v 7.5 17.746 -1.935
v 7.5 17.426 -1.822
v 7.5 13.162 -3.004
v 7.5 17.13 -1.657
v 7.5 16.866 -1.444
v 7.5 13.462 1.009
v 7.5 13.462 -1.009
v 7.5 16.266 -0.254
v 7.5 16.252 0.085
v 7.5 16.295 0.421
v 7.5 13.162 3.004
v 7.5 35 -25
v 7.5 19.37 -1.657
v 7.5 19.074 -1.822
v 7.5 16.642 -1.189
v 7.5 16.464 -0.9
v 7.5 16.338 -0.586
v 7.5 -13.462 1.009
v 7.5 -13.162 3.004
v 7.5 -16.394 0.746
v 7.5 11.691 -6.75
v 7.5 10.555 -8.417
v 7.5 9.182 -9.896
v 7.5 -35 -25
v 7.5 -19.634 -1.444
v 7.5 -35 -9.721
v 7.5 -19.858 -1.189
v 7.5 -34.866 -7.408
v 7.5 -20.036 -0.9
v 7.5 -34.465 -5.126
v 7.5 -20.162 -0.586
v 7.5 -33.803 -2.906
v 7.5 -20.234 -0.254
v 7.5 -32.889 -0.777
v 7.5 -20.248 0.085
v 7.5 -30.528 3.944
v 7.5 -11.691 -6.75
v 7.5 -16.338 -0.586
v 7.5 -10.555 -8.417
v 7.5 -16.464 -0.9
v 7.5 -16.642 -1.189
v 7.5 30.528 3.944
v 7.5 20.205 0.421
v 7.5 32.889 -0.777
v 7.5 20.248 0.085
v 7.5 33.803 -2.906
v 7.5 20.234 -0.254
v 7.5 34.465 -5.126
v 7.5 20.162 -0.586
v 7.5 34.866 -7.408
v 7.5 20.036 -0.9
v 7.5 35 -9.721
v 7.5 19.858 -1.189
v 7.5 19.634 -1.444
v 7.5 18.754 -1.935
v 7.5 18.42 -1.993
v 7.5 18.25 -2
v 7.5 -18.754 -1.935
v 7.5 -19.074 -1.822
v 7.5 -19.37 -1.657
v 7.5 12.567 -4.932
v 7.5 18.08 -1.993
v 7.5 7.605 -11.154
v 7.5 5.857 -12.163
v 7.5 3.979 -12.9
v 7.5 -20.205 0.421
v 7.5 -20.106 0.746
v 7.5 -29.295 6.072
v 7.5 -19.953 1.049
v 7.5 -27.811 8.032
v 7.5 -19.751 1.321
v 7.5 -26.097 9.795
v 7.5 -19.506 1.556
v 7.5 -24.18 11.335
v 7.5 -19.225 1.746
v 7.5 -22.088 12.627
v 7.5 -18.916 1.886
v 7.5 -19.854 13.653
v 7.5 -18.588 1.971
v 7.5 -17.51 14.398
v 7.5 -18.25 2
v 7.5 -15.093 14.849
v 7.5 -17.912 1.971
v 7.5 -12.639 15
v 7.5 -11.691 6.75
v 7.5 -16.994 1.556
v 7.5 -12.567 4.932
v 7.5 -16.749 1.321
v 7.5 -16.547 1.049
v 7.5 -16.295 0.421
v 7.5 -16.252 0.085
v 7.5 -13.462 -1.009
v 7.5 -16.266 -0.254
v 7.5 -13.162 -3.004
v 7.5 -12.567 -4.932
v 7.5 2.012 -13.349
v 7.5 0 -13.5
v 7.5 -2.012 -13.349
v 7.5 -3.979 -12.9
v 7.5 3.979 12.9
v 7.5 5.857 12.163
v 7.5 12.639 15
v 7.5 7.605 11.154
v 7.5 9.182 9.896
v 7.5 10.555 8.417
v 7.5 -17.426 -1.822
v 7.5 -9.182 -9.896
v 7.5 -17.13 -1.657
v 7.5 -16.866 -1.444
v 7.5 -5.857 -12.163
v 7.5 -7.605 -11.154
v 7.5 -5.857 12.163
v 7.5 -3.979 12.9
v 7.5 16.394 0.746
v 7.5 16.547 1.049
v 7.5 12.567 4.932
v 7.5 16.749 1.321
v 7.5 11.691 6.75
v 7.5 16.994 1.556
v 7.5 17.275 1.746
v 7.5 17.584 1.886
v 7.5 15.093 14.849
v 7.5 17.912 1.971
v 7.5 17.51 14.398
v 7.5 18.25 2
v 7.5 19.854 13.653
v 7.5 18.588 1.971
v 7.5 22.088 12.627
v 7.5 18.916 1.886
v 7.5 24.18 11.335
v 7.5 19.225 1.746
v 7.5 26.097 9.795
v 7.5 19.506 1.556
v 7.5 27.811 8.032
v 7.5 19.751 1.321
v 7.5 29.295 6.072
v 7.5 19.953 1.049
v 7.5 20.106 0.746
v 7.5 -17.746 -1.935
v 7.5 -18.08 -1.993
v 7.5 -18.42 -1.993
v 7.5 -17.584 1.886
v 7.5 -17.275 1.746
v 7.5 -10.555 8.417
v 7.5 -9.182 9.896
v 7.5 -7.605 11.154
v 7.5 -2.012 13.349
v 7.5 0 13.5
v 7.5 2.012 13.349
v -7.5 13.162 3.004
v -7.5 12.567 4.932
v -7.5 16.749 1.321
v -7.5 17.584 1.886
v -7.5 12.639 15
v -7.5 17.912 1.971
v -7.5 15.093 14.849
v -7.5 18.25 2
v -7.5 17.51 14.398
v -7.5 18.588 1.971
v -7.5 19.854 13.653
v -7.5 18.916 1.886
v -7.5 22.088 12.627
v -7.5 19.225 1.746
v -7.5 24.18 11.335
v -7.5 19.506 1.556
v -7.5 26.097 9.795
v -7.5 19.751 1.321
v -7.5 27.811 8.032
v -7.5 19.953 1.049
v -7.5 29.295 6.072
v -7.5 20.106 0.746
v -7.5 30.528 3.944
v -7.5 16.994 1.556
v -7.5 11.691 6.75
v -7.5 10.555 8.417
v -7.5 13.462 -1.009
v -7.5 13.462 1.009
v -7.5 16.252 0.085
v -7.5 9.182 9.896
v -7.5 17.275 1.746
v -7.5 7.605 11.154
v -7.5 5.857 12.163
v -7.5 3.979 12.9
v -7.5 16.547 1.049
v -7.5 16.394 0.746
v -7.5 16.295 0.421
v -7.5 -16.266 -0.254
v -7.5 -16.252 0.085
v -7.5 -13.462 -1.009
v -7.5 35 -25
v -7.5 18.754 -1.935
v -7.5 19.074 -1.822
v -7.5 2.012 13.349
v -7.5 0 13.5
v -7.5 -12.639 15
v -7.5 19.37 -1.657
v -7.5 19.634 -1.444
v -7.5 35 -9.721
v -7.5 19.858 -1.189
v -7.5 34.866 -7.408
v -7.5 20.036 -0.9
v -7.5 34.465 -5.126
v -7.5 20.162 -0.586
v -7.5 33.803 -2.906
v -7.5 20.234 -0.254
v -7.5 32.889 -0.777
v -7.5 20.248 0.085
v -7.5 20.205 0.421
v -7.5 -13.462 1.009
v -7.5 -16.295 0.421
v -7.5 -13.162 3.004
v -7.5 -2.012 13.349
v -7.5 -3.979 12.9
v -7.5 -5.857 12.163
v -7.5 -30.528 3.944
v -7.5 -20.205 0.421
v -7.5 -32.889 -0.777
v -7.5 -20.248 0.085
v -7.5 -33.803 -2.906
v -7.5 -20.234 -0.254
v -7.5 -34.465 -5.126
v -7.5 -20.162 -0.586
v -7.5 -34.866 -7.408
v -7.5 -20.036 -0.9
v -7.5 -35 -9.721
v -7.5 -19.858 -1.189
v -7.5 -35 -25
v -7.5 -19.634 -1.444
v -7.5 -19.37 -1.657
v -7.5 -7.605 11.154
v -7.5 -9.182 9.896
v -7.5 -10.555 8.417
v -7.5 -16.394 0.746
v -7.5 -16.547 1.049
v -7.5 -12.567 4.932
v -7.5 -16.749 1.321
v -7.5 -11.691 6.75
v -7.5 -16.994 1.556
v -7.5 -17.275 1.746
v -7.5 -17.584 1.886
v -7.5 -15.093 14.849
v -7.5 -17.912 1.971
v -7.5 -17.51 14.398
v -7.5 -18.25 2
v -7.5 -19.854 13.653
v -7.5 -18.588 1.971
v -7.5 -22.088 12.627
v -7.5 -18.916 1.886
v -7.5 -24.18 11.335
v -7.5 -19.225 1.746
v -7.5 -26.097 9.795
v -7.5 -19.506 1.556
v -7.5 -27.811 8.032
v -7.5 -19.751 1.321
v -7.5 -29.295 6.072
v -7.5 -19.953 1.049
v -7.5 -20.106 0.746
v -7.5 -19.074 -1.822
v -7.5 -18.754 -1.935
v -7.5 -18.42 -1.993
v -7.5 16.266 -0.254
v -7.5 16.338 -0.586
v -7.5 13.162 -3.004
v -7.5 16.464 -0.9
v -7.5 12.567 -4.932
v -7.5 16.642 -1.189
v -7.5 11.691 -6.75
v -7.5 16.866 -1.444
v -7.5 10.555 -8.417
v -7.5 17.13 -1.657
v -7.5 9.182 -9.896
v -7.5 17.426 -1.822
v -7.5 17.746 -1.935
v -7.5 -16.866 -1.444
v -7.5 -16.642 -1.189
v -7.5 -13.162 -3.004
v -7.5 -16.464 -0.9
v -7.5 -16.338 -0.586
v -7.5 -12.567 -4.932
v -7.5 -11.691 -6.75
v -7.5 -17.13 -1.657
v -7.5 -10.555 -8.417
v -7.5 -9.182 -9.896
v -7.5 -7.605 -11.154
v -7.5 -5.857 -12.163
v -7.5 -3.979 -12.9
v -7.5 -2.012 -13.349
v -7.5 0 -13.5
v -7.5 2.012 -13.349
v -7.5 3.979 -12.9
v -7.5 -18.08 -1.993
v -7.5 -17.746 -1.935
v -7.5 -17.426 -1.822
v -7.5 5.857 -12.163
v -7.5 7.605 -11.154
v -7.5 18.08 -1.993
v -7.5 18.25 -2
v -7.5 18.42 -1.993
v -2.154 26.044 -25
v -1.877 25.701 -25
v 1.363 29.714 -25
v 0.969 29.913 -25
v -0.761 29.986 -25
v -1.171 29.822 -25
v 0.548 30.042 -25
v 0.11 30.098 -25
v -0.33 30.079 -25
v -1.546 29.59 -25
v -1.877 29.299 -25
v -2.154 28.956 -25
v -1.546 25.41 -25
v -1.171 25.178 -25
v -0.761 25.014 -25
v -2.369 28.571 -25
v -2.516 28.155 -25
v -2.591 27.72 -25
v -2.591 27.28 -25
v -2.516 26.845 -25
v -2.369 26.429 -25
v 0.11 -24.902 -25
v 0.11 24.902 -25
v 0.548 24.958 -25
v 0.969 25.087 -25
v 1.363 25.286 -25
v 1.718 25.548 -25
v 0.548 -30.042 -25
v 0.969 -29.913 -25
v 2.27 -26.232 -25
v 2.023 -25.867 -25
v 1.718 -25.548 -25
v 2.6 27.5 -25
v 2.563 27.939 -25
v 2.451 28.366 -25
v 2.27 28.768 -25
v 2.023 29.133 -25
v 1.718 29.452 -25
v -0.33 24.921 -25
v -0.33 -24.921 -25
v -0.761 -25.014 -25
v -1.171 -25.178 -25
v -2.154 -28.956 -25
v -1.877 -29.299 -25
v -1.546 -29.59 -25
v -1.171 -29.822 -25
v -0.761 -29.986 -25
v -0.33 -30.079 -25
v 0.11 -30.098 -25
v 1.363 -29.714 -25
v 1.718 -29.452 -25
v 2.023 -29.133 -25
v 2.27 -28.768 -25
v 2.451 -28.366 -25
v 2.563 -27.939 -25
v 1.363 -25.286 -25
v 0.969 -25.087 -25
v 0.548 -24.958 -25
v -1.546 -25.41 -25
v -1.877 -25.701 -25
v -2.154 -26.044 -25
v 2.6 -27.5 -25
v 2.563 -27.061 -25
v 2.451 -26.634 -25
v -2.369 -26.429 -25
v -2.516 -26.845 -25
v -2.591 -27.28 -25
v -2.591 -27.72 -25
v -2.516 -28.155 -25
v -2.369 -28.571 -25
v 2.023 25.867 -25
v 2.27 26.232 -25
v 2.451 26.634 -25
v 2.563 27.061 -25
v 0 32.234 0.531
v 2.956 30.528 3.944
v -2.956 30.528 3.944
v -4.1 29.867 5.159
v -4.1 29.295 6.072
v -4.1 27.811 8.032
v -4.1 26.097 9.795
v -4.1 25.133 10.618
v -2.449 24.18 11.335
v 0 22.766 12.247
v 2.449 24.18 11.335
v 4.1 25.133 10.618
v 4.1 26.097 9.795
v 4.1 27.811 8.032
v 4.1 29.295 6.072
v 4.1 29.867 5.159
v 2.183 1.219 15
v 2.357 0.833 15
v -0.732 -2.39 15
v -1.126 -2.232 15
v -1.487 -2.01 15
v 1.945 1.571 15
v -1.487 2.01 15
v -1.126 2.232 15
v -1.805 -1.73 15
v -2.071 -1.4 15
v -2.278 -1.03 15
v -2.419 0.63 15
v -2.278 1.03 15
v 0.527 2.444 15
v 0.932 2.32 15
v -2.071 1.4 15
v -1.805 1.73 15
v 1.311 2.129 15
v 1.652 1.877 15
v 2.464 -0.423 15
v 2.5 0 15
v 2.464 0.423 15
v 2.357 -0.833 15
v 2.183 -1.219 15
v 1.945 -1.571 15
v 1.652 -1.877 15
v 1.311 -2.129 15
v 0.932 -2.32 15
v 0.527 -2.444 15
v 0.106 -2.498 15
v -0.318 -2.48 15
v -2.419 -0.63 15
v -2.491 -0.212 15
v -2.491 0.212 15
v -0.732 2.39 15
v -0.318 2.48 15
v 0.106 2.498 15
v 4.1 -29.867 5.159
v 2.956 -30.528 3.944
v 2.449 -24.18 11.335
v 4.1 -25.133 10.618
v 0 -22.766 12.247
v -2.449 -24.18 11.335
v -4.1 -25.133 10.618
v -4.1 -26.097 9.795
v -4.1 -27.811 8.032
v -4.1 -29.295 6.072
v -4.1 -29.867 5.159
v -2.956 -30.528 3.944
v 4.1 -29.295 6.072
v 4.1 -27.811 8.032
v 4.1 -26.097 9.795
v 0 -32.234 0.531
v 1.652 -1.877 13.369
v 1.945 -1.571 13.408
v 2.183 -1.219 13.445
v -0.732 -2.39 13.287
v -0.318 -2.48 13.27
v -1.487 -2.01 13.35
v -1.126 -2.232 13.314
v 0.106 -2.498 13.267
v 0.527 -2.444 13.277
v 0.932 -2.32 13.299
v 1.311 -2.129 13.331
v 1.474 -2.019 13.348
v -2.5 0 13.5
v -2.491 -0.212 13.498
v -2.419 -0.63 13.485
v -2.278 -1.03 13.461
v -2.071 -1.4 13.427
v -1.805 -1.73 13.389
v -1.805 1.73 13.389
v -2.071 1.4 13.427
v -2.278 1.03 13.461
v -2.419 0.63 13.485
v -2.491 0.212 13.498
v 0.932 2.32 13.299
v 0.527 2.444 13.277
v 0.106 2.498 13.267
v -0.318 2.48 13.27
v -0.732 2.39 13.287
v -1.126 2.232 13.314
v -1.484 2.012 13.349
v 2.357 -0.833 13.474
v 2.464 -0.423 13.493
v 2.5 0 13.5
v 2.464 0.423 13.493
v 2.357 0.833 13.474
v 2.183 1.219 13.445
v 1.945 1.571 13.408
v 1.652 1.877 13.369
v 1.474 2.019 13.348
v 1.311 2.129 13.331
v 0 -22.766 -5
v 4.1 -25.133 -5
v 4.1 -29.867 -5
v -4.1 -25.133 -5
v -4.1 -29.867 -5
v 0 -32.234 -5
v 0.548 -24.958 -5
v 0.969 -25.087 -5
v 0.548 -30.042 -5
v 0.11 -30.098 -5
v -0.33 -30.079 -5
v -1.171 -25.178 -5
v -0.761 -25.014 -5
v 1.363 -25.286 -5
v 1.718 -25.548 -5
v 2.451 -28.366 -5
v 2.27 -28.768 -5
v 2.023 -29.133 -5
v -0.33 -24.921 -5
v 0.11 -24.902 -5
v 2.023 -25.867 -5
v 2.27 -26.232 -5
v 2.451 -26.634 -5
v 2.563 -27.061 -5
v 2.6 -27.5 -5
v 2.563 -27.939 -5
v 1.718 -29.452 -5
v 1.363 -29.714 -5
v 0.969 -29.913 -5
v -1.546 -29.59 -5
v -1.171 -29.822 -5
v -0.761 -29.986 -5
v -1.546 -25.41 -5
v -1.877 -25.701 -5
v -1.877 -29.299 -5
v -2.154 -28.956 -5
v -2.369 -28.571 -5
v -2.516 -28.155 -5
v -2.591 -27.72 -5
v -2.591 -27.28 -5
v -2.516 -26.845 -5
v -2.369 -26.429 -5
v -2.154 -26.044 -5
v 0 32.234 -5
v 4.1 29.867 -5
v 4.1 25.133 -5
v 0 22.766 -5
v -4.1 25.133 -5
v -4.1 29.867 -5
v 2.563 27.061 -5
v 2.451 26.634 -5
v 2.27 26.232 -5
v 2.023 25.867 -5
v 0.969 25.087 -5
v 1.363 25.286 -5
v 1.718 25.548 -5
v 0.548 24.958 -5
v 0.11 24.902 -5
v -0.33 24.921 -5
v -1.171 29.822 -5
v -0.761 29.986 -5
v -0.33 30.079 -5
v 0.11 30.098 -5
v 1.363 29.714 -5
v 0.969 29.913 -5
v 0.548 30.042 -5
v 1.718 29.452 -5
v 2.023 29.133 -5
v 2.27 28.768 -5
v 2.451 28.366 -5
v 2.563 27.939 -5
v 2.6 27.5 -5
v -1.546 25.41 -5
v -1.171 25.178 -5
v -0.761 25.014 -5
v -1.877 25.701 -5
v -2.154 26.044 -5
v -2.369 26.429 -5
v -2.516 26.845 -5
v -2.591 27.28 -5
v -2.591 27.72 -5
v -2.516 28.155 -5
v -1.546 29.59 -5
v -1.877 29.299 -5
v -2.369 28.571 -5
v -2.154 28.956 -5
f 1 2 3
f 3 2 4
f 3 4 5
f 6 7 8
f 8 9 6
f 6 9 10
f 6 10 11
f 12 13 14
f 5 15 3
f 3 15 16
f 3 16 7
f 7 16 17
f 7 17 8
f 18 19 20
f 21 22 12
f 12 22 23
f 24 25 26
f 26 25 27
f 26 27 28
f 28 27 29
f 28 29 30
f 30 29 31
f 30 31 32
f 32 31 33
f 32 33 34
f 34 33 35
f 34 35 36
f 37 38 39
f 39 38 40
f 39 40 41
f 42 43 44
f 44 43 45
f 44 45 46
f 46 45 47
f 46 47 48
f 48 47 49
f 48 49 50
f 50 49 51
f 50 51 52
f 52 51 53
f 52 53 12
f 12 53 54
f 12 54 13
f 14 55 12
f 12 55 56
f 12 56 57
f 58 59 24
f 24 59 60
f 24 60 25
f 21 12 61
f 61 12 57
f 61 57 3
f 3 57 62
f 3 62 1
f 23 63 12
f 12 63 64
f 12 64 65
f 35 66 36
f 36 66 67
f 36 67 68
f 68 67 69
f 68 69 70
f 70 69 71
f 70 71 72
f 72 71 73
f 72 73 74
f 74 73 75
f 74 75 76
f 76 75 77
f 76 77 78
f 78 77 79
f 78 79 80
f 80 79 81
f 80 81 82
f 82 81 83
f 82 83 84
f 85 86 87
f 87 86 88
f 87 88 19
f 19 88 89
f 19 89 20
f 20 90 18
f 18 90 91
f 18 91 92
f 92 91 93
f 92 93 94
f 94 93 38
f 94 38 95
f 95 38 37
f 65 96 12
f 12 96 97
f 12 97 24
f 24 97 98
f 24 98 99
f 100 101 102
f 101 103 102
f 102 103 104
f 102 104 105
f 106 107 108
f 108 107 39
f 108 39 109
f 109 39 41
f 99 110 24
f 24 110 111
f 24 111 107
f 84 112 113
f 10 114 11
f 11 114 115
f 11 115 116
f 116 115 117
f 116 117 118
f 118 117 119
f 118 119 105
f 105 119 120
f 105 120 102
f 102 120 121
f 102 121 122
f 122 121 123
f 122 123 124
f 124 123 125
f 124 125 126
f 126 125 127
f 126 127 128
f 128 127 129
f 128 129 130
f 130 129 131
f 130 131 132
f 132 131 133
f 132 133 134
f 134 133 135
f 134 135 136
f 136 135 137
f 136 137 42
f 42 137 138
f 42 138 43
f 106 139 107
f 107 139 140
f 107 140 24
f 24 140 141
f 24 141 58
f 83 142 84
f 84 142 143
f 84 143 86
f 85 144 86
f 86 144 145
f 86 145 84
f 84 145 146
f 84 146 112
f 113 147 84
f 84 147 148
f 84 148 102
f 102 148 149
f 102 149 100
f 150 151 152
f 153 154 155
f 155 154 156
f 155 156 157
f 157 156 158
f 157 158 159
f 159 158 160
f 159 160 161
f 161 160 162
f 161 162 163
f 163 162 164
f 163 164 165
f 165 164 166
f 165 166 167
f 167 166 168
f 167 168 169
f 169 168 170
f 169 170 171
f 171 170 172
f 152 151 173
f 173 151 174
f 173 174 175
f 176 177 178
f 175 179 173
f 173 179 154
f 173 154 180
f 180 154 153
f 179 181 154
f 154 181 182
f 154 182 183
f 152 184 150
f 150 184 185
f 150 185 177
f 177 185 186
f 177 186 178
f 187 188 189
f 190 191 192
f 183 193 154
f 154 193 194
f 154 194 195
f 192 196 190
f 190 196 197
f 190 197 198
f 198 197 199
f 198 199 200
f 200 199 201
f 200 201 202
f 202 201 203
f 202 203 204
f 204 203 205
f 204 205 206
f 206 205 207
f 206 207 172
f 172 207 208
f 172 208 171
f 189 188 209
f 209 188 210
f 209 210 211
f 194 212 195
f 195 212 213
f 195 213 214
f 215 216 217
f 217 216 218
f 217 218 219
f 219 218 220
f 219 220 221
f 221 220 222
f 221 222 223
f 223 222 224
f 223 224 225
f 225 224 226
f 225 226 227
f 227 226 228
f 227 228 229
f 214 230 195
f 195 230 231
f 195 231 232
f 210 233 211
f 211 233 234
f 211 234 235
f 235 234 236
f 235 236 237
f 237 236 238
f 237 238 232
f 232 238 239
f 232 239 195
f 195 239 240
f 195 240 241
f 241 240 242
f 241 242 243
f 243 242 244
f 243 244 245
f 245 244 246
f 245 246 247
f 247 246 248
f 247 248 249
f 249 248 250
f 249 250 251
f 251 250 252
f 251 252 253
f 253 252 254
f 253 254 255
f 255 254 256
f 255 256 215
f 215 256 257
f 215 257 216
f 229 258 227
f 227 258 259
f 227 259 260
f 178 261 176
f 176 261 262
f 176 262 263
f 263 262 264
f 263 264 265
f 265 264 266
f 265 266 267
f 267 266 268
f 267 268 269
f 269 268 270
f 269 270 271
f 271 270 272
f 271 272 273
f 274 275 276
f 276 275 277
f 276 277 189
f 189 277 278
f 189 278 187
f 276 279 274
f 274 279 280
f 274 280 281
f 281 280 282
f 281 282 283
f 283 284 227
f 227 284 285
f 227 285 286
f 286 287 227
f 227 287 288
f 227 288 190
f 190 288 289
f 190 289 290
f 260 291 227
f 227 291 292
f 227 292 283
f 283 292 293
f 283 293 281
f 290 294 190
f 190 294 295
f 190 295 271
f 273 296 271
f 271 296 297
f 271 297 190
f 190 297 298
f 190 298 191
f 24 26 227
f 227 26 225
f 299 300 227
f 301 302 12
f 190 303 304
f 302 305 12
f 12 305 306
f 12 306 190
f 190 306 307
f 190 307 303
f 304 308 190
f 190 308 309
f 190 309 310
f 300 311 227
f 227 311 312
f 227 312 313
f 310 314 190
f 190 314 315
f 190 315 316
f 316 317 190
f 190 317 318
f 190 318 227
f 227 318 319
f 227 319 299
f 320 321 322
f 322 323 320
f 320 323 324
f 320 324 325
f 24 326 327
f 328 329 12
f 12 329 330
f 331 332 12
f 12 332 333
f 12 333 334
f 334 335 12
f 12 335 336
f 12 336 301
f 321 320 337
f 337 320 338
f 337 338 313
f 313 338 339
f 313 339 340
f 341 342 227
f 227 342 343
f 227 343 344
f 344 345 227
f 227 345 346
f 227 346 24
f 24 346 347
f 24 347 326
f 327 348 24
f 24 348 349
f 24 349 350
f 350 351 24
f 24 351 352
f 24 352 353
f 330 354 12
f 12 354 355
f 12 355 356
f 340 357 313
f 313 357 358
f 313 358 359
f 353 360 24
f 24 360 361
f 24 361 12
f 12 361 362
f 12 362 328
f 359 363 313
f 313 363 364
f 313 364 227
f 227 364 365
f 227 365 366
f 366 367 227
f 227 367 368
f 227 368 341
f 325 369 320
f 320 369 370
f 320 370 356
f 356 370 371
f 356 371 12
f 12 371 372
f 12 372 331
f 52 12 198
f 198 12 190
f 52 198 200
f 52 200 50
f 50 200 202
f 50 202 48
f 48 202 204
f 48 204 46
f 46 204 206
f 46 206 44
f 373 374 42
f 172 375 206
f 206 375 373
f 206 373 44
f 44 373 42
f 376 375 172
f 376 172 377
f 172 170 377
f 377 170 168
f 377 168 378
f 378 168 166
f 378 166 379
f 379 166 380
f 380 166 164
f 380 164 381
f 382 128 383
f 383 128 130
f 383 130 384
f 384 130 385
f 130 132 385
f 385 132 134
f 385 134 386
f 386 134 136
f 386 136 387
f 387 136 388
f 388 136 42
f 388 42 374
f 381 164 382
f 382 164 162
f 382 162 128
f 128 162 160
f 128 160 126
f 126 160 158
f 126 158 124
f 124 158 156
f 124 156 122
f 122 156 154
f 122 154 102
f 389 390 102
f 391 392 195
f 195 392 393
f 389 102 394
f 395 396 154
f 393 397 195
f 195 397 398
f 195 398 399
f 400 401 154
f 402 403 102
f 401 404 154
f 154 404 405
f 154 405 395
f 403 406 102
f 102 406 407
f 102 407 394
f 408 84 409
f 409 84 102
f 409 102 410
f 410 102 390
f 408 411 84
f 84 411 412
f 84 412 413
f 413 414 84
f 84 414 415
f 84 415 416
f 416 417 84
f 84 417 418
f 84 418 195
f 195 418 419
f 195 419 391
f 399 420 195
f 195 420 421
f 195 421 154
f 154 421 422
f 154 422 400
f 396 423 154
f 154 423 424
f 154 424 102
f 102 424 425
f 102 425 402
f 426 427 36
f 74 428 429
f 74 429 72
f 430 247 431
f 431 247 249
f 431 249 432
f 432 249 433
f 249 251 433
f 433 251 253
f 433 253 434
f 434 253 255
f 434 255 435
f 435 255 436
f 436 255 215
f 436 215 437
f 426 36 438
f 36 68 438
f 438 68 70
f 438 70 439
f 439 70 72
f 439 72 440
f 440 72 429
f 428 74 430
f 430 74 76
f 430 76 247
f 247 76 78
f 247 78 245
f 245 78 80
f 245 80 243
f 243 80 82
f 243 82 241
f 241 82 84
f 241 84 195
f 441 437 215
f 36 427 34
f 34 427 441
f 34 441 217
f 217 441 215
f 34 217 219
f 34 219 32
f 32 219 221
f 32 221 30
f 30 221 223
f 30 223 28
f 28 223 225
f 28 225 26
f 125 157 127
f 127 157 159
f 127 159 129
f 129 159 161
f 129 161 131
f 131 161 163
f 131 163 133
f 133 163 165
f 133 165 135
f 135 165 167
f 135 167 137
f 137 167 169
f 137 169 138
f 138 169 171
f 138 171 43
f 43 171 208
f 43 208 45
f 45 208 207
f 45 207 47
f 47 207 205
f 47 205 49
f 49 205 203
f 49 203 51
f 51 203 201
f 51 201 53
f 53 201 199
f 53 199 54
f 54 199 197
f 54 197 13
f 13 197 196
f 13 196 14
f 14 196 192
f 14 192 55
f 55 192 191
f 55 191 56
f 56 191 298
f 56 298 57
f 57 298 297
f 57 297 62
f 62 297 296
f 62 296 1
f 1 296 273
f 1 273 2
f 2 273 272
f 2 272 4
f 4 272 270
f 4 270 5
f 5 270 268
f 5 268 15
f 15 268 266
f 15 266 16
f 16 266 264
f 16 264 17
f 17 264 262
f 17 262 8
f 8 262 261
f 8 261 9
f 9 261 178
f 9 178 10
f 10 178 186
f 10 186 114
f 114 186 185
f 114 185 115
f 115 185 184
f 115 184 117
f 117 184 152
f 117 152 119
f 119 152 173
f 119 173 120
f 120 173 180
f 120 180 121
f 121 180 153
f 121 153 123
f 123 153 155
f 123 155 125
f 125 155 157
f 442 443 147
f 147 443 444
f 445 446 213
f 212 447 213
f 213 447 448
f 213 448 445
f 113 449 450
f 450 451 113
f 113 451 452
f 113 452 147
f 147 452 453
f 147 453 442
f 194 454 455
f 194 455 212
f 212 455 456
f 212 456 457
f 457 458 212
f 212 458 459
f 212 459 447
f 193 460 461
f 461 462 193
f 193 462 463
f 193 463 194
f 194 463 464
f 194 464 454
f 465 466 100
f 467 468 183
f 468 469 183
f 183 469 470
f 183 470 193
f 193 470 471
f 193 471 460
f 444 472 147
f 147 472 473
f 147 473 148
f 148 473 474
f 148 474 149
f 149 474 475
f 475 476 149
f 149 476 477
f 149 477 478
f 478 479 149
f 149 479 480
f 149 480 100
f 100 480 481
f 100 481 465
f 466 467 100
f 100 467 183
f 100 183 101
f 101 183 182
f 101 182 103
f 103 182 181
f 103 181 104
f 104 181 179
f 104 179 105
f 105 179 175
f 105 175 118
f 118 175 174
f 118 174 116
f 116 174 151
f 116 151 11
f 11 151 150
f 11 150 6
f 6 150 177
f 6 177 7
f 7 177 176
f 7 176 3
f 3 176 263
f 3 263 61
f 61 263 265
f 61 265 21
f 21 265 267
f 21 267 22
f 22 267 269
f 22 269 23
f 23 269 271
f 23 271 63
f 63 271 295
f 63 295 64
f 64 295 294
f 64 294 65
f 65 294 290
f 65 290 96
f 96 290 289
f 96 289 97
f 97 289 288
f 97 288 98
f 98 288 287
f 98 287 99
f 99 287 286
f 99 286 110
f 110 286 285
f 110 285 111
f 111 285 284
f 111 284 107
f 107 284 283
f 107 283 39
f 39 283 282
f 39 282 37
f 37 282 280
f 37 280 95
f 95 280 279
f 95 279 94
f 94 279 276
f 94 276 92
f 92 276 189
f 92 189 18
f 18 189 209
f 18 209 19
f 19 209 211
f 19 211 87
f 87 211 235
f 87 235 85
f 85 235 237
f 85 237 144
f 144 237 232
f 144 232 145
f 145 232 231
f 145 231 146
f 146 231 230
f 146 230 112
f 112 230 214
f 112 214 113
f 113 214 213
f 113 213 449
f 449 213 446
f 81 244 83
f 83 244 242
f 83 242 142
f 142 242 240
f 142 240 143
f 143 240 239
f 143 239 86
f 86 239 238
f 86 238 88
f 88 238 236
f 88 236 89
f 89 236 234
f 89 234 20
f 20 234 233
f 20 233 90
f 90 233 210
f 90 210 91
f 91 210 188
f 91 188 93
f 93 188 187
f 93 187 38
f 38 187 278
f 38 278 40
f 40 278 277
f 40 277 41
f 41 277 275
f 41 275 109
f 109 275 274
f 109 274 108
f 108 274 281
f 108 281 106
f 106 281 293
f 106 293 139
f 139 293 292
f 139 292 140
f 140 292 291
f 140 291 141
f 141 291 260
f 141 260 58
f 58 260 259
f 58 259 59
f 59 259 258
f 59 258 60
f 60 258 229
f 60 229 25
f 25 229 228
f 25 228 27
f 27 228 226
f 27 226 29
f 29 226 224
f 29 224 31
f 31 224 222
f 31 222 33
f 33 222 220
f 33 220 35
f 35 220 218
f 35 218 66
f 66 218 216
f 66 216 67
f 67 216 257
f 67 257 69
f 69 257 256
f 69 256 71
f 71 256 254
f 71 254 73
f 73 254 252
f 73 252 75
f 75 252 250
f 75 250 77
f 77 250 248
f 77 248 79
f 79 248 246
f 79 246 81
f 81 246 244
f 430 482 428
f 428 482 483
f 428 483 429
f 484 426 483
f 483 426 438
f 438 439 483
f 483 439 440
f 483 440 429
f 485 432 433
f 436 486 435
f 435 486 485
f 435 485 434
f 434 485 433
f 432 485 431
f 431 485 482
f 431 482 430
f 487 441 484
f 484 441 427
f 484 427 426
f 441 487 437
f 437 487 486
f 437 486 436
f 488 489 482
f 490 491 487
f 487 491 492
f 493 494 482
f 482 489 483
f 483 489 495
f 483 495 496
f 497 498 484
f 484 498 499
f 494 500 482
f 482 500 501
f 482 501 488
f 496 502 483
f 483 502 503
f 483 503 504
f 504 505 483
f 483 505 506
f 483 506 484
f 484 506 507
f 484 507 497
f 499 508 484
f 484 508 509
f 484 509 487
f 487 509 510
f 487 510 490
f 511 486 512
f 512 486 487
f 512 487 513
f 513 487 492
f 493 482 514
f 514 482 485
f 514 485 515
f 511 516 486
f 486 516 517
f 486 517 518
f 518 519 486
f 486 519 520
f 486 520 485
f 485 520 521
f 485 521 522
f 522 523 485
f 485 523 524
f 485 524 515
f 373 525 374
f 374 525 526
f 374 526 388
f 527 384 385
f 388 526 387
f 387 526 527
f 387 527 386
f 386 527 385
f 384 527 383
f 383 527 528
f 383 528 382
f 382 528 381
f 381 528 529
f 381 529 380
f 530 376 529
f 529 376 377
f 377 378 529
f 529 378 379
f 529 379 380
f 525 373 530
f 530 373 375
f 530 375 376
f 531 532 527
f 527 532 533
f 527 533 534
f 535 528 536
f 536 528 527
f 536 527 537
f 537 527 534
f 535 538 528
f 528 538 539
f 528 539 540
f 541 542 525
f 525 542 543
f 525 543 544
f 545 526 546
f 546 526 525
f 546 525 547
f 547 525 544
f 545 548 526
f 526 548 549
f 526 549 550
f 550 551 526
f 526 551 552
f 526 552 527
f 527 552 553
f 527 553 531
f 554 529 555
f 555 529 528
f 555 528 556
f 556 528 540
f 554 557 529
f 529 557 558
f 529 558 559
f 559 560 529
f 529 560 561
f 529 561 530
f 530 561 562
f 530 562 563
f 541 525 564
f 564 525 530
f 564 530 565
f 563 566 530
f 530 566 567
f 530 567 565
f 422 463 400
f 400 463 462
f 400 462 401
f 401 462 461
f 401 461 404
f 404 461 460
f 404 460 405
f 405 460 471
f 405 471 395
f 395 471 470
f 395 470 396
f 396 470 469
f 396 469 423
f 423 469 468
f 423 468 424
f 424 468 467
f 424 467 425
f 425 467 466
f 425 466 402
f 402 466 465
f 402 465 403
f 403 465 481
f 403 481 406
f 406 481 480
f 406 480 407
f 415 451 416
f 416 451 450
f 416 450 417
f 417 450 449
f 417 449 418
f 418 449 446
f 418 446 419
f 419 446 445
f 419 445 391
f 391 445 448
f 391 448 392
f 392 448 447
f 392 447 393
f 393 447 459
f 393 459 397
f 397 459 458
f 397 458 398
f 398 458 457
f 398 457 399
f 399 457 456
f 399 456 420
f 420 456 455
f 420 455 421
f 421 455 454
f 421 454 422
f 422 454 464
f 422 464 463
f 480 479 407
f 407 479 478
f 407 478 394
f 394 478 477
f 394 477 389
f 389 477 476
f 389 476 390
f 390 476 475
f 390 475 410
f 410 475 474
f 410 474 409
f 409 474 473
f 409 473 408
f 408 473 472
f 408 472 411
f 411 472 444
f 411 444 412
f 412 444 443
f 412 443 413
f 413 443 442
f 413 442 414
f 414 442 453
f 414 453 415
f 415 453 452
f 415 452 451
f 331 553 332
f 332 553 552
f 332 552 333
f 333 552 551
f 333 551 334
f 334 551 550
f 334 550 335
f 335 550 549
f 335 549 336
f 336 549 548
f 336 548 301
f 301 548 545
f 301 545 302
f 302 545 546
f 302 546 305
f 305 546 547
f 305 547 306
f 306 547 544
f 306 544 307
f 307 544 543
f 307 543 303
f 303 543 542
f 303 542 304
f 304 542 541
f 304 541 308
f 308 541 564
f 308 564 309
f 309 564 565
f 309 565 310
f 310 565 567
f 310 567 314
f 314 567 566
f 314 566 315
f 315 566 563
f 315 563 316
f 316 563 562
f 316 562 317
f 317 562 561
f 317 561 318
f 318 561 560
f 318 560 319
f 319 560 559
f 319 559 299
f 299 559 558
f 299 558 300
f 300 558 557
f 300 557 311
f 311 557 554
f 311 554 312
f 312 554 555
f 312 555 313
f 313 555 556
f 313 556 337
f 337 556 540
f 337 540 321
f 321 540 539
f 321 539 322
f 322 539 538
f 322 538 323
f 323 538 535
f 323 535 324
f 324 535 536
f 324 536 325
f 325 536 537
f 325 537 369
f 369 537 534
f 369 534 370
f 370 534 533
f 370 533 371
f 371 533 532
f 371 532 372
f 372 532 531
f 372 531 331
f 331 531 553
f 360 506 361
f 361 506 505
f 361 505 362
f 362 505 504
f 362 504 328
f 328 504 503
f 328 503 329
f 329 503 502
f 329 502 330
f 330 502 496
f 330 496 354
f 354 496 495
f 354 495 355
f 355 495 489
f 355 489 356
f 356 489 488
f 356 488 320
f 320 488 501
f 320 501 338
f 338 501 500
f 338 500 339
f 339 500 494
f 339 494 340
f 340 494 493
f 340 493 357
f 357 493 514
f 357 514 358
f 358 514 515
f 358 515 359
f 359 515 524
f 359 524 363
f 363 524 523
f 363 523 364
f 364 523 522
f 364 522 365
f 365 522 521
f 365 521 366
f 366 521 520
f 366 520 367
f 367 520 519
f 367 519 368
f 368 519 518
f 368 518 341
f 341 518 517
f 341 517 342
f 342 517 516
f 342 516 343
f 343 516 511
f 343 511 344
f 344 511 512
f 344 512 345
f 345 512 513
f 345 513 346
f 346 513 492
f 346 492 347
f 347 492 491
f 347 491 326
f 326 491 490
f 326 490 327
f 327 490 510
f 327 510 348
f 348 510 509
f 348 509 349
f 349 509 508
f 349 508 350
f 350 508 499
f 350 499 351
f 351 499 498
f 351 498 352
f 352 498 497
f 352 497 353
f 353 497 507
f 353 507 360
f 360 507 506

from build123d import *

# Parameters (mm, degrees)
SKETCH1_R           = 2
SKETCH1_R_2         = 13.5
BOSS_EXTRUDE1_DEPTH = 7.5
SKETCH2_R           = 2.6
CUT_EXTRUDE1_DEPTH  = 20
SKETCH4_R           = 2.5
CUT_EXTRUDE2_DEPTH  = 10
SKETCH2_3_R         = 2.6
CUT_EXTRUDE3_DEPTH  = 54.677276398


with BuildPart() as part:
    # Sketch1 → Boss-Extrude1 (new, symmetric)
    with BuildSketch(Plane(origin=(0, 0, 0), x_dir=(0, 0, -1), z_dir=(1, 0, 0))):
        with BuildLine():
            Line((24.999999999, 35), (9.721359549, 35))
            ThreePointArc((9.721359549, 35), (5.126301138, 34.464979789), (0.777087639, 32.88854382))
            Line((0.777087639, 32.88854382), (-3.944271911, 30.527864045))
            ThreePointArc((-3.944271911, 30.527864045), (-12.013016168, 23.153942467), (-15.000000001, 12.639320225))
            Line((-15.000000001, 12.639320225), (-15.000000001, -12.639320225))
            ThreePointArc((-15.000000001, -12.639320225), (-12.013016168, -23.153942467), (-3.944271911, -30.527864045))
            Line((-3.944271911, -30.527864045), (0.777087639, -32.88854382))
            ThreePointArc((0.777087639, -32.88854382), (5.126301138, -34.464979789), (9.721359549, -35))
            Line((9.721359549, -35), (24.999999999, -35))
            Line((24.999999999, -35), (24.999999999, 35))
        make_face()
        with Locations((0, 18.25)):
            Circle(SKETCH1_R, mode=Mode.SUBTRACT)
        Circle(SKETCH1_R_2, mode=Mode.SUBTRACT)
        with Locations((0, -18.25)):
            Circle(SKETCH1_R, mode=Mode.SUBTRACT)
    extrude(amount=BOSS_EXTRUDE1_DEPTH, both=True)

    # Sketch2 → Cut-Extrude1 (cut)
    # profile 1 of 2: a face of its own
    with BuildSketch(Plane.XY.offset(15.000000001)):
        Polygon((0, -22.765727793), (-4.1, -25.132863896), (-4.1, -29.867136104), (0, -32.234272207), (4.1, -29.867136104), (4.1, -25.132863896), align=None)
        with Locations((0, -27.5)):
            Circle(SKETCH2_R, mode=Mode.SUBTRACT)
    # profile 2 of 2: a face of its own
    with BuildSketch(Plane.XY.offset(15.000000001)):
        Polygon((0, 32.234272207), (-4.1, 29.867136104), (-4.1, 25.132863896), (0, 22.765727793), (4.1, 25.132863896), (4.1, 29.867136104), align=None)
        with Locations((0, 27.5)):
            Circle(SKETCH2_R, mode=Mode.SUBTRACT)
    extrude(amount=-CUT_EXTRUDE1_DEPTH, mode=Mode.SUBTRACT)

    # Sketch4 → Cut-Extrude2 (cut)
    with BuildSketch(Plane.XY.offset(15.000000001)):
        Circle(SKETCH4_R)
    extrude(amount=-CUT_EXTRUDE2_DEPTH, mode=Mode.SUBTRACT)

    # Sketch2<3> → Cut-Extrude3 (cut, through all)
    with BuildSketch(Plane.XY.offset(15.000000001)):
        with Locations((0, 27.5)):
            Circle(SKETCH2_3_R)
        with Locations((0, -27.5)):
            Circle(SKETCH2_3_R)
    extrude(amount=-CUT_EXTRUDE3_DEPTH, mode=Mode.SUBTRACT)


solid = part.part
